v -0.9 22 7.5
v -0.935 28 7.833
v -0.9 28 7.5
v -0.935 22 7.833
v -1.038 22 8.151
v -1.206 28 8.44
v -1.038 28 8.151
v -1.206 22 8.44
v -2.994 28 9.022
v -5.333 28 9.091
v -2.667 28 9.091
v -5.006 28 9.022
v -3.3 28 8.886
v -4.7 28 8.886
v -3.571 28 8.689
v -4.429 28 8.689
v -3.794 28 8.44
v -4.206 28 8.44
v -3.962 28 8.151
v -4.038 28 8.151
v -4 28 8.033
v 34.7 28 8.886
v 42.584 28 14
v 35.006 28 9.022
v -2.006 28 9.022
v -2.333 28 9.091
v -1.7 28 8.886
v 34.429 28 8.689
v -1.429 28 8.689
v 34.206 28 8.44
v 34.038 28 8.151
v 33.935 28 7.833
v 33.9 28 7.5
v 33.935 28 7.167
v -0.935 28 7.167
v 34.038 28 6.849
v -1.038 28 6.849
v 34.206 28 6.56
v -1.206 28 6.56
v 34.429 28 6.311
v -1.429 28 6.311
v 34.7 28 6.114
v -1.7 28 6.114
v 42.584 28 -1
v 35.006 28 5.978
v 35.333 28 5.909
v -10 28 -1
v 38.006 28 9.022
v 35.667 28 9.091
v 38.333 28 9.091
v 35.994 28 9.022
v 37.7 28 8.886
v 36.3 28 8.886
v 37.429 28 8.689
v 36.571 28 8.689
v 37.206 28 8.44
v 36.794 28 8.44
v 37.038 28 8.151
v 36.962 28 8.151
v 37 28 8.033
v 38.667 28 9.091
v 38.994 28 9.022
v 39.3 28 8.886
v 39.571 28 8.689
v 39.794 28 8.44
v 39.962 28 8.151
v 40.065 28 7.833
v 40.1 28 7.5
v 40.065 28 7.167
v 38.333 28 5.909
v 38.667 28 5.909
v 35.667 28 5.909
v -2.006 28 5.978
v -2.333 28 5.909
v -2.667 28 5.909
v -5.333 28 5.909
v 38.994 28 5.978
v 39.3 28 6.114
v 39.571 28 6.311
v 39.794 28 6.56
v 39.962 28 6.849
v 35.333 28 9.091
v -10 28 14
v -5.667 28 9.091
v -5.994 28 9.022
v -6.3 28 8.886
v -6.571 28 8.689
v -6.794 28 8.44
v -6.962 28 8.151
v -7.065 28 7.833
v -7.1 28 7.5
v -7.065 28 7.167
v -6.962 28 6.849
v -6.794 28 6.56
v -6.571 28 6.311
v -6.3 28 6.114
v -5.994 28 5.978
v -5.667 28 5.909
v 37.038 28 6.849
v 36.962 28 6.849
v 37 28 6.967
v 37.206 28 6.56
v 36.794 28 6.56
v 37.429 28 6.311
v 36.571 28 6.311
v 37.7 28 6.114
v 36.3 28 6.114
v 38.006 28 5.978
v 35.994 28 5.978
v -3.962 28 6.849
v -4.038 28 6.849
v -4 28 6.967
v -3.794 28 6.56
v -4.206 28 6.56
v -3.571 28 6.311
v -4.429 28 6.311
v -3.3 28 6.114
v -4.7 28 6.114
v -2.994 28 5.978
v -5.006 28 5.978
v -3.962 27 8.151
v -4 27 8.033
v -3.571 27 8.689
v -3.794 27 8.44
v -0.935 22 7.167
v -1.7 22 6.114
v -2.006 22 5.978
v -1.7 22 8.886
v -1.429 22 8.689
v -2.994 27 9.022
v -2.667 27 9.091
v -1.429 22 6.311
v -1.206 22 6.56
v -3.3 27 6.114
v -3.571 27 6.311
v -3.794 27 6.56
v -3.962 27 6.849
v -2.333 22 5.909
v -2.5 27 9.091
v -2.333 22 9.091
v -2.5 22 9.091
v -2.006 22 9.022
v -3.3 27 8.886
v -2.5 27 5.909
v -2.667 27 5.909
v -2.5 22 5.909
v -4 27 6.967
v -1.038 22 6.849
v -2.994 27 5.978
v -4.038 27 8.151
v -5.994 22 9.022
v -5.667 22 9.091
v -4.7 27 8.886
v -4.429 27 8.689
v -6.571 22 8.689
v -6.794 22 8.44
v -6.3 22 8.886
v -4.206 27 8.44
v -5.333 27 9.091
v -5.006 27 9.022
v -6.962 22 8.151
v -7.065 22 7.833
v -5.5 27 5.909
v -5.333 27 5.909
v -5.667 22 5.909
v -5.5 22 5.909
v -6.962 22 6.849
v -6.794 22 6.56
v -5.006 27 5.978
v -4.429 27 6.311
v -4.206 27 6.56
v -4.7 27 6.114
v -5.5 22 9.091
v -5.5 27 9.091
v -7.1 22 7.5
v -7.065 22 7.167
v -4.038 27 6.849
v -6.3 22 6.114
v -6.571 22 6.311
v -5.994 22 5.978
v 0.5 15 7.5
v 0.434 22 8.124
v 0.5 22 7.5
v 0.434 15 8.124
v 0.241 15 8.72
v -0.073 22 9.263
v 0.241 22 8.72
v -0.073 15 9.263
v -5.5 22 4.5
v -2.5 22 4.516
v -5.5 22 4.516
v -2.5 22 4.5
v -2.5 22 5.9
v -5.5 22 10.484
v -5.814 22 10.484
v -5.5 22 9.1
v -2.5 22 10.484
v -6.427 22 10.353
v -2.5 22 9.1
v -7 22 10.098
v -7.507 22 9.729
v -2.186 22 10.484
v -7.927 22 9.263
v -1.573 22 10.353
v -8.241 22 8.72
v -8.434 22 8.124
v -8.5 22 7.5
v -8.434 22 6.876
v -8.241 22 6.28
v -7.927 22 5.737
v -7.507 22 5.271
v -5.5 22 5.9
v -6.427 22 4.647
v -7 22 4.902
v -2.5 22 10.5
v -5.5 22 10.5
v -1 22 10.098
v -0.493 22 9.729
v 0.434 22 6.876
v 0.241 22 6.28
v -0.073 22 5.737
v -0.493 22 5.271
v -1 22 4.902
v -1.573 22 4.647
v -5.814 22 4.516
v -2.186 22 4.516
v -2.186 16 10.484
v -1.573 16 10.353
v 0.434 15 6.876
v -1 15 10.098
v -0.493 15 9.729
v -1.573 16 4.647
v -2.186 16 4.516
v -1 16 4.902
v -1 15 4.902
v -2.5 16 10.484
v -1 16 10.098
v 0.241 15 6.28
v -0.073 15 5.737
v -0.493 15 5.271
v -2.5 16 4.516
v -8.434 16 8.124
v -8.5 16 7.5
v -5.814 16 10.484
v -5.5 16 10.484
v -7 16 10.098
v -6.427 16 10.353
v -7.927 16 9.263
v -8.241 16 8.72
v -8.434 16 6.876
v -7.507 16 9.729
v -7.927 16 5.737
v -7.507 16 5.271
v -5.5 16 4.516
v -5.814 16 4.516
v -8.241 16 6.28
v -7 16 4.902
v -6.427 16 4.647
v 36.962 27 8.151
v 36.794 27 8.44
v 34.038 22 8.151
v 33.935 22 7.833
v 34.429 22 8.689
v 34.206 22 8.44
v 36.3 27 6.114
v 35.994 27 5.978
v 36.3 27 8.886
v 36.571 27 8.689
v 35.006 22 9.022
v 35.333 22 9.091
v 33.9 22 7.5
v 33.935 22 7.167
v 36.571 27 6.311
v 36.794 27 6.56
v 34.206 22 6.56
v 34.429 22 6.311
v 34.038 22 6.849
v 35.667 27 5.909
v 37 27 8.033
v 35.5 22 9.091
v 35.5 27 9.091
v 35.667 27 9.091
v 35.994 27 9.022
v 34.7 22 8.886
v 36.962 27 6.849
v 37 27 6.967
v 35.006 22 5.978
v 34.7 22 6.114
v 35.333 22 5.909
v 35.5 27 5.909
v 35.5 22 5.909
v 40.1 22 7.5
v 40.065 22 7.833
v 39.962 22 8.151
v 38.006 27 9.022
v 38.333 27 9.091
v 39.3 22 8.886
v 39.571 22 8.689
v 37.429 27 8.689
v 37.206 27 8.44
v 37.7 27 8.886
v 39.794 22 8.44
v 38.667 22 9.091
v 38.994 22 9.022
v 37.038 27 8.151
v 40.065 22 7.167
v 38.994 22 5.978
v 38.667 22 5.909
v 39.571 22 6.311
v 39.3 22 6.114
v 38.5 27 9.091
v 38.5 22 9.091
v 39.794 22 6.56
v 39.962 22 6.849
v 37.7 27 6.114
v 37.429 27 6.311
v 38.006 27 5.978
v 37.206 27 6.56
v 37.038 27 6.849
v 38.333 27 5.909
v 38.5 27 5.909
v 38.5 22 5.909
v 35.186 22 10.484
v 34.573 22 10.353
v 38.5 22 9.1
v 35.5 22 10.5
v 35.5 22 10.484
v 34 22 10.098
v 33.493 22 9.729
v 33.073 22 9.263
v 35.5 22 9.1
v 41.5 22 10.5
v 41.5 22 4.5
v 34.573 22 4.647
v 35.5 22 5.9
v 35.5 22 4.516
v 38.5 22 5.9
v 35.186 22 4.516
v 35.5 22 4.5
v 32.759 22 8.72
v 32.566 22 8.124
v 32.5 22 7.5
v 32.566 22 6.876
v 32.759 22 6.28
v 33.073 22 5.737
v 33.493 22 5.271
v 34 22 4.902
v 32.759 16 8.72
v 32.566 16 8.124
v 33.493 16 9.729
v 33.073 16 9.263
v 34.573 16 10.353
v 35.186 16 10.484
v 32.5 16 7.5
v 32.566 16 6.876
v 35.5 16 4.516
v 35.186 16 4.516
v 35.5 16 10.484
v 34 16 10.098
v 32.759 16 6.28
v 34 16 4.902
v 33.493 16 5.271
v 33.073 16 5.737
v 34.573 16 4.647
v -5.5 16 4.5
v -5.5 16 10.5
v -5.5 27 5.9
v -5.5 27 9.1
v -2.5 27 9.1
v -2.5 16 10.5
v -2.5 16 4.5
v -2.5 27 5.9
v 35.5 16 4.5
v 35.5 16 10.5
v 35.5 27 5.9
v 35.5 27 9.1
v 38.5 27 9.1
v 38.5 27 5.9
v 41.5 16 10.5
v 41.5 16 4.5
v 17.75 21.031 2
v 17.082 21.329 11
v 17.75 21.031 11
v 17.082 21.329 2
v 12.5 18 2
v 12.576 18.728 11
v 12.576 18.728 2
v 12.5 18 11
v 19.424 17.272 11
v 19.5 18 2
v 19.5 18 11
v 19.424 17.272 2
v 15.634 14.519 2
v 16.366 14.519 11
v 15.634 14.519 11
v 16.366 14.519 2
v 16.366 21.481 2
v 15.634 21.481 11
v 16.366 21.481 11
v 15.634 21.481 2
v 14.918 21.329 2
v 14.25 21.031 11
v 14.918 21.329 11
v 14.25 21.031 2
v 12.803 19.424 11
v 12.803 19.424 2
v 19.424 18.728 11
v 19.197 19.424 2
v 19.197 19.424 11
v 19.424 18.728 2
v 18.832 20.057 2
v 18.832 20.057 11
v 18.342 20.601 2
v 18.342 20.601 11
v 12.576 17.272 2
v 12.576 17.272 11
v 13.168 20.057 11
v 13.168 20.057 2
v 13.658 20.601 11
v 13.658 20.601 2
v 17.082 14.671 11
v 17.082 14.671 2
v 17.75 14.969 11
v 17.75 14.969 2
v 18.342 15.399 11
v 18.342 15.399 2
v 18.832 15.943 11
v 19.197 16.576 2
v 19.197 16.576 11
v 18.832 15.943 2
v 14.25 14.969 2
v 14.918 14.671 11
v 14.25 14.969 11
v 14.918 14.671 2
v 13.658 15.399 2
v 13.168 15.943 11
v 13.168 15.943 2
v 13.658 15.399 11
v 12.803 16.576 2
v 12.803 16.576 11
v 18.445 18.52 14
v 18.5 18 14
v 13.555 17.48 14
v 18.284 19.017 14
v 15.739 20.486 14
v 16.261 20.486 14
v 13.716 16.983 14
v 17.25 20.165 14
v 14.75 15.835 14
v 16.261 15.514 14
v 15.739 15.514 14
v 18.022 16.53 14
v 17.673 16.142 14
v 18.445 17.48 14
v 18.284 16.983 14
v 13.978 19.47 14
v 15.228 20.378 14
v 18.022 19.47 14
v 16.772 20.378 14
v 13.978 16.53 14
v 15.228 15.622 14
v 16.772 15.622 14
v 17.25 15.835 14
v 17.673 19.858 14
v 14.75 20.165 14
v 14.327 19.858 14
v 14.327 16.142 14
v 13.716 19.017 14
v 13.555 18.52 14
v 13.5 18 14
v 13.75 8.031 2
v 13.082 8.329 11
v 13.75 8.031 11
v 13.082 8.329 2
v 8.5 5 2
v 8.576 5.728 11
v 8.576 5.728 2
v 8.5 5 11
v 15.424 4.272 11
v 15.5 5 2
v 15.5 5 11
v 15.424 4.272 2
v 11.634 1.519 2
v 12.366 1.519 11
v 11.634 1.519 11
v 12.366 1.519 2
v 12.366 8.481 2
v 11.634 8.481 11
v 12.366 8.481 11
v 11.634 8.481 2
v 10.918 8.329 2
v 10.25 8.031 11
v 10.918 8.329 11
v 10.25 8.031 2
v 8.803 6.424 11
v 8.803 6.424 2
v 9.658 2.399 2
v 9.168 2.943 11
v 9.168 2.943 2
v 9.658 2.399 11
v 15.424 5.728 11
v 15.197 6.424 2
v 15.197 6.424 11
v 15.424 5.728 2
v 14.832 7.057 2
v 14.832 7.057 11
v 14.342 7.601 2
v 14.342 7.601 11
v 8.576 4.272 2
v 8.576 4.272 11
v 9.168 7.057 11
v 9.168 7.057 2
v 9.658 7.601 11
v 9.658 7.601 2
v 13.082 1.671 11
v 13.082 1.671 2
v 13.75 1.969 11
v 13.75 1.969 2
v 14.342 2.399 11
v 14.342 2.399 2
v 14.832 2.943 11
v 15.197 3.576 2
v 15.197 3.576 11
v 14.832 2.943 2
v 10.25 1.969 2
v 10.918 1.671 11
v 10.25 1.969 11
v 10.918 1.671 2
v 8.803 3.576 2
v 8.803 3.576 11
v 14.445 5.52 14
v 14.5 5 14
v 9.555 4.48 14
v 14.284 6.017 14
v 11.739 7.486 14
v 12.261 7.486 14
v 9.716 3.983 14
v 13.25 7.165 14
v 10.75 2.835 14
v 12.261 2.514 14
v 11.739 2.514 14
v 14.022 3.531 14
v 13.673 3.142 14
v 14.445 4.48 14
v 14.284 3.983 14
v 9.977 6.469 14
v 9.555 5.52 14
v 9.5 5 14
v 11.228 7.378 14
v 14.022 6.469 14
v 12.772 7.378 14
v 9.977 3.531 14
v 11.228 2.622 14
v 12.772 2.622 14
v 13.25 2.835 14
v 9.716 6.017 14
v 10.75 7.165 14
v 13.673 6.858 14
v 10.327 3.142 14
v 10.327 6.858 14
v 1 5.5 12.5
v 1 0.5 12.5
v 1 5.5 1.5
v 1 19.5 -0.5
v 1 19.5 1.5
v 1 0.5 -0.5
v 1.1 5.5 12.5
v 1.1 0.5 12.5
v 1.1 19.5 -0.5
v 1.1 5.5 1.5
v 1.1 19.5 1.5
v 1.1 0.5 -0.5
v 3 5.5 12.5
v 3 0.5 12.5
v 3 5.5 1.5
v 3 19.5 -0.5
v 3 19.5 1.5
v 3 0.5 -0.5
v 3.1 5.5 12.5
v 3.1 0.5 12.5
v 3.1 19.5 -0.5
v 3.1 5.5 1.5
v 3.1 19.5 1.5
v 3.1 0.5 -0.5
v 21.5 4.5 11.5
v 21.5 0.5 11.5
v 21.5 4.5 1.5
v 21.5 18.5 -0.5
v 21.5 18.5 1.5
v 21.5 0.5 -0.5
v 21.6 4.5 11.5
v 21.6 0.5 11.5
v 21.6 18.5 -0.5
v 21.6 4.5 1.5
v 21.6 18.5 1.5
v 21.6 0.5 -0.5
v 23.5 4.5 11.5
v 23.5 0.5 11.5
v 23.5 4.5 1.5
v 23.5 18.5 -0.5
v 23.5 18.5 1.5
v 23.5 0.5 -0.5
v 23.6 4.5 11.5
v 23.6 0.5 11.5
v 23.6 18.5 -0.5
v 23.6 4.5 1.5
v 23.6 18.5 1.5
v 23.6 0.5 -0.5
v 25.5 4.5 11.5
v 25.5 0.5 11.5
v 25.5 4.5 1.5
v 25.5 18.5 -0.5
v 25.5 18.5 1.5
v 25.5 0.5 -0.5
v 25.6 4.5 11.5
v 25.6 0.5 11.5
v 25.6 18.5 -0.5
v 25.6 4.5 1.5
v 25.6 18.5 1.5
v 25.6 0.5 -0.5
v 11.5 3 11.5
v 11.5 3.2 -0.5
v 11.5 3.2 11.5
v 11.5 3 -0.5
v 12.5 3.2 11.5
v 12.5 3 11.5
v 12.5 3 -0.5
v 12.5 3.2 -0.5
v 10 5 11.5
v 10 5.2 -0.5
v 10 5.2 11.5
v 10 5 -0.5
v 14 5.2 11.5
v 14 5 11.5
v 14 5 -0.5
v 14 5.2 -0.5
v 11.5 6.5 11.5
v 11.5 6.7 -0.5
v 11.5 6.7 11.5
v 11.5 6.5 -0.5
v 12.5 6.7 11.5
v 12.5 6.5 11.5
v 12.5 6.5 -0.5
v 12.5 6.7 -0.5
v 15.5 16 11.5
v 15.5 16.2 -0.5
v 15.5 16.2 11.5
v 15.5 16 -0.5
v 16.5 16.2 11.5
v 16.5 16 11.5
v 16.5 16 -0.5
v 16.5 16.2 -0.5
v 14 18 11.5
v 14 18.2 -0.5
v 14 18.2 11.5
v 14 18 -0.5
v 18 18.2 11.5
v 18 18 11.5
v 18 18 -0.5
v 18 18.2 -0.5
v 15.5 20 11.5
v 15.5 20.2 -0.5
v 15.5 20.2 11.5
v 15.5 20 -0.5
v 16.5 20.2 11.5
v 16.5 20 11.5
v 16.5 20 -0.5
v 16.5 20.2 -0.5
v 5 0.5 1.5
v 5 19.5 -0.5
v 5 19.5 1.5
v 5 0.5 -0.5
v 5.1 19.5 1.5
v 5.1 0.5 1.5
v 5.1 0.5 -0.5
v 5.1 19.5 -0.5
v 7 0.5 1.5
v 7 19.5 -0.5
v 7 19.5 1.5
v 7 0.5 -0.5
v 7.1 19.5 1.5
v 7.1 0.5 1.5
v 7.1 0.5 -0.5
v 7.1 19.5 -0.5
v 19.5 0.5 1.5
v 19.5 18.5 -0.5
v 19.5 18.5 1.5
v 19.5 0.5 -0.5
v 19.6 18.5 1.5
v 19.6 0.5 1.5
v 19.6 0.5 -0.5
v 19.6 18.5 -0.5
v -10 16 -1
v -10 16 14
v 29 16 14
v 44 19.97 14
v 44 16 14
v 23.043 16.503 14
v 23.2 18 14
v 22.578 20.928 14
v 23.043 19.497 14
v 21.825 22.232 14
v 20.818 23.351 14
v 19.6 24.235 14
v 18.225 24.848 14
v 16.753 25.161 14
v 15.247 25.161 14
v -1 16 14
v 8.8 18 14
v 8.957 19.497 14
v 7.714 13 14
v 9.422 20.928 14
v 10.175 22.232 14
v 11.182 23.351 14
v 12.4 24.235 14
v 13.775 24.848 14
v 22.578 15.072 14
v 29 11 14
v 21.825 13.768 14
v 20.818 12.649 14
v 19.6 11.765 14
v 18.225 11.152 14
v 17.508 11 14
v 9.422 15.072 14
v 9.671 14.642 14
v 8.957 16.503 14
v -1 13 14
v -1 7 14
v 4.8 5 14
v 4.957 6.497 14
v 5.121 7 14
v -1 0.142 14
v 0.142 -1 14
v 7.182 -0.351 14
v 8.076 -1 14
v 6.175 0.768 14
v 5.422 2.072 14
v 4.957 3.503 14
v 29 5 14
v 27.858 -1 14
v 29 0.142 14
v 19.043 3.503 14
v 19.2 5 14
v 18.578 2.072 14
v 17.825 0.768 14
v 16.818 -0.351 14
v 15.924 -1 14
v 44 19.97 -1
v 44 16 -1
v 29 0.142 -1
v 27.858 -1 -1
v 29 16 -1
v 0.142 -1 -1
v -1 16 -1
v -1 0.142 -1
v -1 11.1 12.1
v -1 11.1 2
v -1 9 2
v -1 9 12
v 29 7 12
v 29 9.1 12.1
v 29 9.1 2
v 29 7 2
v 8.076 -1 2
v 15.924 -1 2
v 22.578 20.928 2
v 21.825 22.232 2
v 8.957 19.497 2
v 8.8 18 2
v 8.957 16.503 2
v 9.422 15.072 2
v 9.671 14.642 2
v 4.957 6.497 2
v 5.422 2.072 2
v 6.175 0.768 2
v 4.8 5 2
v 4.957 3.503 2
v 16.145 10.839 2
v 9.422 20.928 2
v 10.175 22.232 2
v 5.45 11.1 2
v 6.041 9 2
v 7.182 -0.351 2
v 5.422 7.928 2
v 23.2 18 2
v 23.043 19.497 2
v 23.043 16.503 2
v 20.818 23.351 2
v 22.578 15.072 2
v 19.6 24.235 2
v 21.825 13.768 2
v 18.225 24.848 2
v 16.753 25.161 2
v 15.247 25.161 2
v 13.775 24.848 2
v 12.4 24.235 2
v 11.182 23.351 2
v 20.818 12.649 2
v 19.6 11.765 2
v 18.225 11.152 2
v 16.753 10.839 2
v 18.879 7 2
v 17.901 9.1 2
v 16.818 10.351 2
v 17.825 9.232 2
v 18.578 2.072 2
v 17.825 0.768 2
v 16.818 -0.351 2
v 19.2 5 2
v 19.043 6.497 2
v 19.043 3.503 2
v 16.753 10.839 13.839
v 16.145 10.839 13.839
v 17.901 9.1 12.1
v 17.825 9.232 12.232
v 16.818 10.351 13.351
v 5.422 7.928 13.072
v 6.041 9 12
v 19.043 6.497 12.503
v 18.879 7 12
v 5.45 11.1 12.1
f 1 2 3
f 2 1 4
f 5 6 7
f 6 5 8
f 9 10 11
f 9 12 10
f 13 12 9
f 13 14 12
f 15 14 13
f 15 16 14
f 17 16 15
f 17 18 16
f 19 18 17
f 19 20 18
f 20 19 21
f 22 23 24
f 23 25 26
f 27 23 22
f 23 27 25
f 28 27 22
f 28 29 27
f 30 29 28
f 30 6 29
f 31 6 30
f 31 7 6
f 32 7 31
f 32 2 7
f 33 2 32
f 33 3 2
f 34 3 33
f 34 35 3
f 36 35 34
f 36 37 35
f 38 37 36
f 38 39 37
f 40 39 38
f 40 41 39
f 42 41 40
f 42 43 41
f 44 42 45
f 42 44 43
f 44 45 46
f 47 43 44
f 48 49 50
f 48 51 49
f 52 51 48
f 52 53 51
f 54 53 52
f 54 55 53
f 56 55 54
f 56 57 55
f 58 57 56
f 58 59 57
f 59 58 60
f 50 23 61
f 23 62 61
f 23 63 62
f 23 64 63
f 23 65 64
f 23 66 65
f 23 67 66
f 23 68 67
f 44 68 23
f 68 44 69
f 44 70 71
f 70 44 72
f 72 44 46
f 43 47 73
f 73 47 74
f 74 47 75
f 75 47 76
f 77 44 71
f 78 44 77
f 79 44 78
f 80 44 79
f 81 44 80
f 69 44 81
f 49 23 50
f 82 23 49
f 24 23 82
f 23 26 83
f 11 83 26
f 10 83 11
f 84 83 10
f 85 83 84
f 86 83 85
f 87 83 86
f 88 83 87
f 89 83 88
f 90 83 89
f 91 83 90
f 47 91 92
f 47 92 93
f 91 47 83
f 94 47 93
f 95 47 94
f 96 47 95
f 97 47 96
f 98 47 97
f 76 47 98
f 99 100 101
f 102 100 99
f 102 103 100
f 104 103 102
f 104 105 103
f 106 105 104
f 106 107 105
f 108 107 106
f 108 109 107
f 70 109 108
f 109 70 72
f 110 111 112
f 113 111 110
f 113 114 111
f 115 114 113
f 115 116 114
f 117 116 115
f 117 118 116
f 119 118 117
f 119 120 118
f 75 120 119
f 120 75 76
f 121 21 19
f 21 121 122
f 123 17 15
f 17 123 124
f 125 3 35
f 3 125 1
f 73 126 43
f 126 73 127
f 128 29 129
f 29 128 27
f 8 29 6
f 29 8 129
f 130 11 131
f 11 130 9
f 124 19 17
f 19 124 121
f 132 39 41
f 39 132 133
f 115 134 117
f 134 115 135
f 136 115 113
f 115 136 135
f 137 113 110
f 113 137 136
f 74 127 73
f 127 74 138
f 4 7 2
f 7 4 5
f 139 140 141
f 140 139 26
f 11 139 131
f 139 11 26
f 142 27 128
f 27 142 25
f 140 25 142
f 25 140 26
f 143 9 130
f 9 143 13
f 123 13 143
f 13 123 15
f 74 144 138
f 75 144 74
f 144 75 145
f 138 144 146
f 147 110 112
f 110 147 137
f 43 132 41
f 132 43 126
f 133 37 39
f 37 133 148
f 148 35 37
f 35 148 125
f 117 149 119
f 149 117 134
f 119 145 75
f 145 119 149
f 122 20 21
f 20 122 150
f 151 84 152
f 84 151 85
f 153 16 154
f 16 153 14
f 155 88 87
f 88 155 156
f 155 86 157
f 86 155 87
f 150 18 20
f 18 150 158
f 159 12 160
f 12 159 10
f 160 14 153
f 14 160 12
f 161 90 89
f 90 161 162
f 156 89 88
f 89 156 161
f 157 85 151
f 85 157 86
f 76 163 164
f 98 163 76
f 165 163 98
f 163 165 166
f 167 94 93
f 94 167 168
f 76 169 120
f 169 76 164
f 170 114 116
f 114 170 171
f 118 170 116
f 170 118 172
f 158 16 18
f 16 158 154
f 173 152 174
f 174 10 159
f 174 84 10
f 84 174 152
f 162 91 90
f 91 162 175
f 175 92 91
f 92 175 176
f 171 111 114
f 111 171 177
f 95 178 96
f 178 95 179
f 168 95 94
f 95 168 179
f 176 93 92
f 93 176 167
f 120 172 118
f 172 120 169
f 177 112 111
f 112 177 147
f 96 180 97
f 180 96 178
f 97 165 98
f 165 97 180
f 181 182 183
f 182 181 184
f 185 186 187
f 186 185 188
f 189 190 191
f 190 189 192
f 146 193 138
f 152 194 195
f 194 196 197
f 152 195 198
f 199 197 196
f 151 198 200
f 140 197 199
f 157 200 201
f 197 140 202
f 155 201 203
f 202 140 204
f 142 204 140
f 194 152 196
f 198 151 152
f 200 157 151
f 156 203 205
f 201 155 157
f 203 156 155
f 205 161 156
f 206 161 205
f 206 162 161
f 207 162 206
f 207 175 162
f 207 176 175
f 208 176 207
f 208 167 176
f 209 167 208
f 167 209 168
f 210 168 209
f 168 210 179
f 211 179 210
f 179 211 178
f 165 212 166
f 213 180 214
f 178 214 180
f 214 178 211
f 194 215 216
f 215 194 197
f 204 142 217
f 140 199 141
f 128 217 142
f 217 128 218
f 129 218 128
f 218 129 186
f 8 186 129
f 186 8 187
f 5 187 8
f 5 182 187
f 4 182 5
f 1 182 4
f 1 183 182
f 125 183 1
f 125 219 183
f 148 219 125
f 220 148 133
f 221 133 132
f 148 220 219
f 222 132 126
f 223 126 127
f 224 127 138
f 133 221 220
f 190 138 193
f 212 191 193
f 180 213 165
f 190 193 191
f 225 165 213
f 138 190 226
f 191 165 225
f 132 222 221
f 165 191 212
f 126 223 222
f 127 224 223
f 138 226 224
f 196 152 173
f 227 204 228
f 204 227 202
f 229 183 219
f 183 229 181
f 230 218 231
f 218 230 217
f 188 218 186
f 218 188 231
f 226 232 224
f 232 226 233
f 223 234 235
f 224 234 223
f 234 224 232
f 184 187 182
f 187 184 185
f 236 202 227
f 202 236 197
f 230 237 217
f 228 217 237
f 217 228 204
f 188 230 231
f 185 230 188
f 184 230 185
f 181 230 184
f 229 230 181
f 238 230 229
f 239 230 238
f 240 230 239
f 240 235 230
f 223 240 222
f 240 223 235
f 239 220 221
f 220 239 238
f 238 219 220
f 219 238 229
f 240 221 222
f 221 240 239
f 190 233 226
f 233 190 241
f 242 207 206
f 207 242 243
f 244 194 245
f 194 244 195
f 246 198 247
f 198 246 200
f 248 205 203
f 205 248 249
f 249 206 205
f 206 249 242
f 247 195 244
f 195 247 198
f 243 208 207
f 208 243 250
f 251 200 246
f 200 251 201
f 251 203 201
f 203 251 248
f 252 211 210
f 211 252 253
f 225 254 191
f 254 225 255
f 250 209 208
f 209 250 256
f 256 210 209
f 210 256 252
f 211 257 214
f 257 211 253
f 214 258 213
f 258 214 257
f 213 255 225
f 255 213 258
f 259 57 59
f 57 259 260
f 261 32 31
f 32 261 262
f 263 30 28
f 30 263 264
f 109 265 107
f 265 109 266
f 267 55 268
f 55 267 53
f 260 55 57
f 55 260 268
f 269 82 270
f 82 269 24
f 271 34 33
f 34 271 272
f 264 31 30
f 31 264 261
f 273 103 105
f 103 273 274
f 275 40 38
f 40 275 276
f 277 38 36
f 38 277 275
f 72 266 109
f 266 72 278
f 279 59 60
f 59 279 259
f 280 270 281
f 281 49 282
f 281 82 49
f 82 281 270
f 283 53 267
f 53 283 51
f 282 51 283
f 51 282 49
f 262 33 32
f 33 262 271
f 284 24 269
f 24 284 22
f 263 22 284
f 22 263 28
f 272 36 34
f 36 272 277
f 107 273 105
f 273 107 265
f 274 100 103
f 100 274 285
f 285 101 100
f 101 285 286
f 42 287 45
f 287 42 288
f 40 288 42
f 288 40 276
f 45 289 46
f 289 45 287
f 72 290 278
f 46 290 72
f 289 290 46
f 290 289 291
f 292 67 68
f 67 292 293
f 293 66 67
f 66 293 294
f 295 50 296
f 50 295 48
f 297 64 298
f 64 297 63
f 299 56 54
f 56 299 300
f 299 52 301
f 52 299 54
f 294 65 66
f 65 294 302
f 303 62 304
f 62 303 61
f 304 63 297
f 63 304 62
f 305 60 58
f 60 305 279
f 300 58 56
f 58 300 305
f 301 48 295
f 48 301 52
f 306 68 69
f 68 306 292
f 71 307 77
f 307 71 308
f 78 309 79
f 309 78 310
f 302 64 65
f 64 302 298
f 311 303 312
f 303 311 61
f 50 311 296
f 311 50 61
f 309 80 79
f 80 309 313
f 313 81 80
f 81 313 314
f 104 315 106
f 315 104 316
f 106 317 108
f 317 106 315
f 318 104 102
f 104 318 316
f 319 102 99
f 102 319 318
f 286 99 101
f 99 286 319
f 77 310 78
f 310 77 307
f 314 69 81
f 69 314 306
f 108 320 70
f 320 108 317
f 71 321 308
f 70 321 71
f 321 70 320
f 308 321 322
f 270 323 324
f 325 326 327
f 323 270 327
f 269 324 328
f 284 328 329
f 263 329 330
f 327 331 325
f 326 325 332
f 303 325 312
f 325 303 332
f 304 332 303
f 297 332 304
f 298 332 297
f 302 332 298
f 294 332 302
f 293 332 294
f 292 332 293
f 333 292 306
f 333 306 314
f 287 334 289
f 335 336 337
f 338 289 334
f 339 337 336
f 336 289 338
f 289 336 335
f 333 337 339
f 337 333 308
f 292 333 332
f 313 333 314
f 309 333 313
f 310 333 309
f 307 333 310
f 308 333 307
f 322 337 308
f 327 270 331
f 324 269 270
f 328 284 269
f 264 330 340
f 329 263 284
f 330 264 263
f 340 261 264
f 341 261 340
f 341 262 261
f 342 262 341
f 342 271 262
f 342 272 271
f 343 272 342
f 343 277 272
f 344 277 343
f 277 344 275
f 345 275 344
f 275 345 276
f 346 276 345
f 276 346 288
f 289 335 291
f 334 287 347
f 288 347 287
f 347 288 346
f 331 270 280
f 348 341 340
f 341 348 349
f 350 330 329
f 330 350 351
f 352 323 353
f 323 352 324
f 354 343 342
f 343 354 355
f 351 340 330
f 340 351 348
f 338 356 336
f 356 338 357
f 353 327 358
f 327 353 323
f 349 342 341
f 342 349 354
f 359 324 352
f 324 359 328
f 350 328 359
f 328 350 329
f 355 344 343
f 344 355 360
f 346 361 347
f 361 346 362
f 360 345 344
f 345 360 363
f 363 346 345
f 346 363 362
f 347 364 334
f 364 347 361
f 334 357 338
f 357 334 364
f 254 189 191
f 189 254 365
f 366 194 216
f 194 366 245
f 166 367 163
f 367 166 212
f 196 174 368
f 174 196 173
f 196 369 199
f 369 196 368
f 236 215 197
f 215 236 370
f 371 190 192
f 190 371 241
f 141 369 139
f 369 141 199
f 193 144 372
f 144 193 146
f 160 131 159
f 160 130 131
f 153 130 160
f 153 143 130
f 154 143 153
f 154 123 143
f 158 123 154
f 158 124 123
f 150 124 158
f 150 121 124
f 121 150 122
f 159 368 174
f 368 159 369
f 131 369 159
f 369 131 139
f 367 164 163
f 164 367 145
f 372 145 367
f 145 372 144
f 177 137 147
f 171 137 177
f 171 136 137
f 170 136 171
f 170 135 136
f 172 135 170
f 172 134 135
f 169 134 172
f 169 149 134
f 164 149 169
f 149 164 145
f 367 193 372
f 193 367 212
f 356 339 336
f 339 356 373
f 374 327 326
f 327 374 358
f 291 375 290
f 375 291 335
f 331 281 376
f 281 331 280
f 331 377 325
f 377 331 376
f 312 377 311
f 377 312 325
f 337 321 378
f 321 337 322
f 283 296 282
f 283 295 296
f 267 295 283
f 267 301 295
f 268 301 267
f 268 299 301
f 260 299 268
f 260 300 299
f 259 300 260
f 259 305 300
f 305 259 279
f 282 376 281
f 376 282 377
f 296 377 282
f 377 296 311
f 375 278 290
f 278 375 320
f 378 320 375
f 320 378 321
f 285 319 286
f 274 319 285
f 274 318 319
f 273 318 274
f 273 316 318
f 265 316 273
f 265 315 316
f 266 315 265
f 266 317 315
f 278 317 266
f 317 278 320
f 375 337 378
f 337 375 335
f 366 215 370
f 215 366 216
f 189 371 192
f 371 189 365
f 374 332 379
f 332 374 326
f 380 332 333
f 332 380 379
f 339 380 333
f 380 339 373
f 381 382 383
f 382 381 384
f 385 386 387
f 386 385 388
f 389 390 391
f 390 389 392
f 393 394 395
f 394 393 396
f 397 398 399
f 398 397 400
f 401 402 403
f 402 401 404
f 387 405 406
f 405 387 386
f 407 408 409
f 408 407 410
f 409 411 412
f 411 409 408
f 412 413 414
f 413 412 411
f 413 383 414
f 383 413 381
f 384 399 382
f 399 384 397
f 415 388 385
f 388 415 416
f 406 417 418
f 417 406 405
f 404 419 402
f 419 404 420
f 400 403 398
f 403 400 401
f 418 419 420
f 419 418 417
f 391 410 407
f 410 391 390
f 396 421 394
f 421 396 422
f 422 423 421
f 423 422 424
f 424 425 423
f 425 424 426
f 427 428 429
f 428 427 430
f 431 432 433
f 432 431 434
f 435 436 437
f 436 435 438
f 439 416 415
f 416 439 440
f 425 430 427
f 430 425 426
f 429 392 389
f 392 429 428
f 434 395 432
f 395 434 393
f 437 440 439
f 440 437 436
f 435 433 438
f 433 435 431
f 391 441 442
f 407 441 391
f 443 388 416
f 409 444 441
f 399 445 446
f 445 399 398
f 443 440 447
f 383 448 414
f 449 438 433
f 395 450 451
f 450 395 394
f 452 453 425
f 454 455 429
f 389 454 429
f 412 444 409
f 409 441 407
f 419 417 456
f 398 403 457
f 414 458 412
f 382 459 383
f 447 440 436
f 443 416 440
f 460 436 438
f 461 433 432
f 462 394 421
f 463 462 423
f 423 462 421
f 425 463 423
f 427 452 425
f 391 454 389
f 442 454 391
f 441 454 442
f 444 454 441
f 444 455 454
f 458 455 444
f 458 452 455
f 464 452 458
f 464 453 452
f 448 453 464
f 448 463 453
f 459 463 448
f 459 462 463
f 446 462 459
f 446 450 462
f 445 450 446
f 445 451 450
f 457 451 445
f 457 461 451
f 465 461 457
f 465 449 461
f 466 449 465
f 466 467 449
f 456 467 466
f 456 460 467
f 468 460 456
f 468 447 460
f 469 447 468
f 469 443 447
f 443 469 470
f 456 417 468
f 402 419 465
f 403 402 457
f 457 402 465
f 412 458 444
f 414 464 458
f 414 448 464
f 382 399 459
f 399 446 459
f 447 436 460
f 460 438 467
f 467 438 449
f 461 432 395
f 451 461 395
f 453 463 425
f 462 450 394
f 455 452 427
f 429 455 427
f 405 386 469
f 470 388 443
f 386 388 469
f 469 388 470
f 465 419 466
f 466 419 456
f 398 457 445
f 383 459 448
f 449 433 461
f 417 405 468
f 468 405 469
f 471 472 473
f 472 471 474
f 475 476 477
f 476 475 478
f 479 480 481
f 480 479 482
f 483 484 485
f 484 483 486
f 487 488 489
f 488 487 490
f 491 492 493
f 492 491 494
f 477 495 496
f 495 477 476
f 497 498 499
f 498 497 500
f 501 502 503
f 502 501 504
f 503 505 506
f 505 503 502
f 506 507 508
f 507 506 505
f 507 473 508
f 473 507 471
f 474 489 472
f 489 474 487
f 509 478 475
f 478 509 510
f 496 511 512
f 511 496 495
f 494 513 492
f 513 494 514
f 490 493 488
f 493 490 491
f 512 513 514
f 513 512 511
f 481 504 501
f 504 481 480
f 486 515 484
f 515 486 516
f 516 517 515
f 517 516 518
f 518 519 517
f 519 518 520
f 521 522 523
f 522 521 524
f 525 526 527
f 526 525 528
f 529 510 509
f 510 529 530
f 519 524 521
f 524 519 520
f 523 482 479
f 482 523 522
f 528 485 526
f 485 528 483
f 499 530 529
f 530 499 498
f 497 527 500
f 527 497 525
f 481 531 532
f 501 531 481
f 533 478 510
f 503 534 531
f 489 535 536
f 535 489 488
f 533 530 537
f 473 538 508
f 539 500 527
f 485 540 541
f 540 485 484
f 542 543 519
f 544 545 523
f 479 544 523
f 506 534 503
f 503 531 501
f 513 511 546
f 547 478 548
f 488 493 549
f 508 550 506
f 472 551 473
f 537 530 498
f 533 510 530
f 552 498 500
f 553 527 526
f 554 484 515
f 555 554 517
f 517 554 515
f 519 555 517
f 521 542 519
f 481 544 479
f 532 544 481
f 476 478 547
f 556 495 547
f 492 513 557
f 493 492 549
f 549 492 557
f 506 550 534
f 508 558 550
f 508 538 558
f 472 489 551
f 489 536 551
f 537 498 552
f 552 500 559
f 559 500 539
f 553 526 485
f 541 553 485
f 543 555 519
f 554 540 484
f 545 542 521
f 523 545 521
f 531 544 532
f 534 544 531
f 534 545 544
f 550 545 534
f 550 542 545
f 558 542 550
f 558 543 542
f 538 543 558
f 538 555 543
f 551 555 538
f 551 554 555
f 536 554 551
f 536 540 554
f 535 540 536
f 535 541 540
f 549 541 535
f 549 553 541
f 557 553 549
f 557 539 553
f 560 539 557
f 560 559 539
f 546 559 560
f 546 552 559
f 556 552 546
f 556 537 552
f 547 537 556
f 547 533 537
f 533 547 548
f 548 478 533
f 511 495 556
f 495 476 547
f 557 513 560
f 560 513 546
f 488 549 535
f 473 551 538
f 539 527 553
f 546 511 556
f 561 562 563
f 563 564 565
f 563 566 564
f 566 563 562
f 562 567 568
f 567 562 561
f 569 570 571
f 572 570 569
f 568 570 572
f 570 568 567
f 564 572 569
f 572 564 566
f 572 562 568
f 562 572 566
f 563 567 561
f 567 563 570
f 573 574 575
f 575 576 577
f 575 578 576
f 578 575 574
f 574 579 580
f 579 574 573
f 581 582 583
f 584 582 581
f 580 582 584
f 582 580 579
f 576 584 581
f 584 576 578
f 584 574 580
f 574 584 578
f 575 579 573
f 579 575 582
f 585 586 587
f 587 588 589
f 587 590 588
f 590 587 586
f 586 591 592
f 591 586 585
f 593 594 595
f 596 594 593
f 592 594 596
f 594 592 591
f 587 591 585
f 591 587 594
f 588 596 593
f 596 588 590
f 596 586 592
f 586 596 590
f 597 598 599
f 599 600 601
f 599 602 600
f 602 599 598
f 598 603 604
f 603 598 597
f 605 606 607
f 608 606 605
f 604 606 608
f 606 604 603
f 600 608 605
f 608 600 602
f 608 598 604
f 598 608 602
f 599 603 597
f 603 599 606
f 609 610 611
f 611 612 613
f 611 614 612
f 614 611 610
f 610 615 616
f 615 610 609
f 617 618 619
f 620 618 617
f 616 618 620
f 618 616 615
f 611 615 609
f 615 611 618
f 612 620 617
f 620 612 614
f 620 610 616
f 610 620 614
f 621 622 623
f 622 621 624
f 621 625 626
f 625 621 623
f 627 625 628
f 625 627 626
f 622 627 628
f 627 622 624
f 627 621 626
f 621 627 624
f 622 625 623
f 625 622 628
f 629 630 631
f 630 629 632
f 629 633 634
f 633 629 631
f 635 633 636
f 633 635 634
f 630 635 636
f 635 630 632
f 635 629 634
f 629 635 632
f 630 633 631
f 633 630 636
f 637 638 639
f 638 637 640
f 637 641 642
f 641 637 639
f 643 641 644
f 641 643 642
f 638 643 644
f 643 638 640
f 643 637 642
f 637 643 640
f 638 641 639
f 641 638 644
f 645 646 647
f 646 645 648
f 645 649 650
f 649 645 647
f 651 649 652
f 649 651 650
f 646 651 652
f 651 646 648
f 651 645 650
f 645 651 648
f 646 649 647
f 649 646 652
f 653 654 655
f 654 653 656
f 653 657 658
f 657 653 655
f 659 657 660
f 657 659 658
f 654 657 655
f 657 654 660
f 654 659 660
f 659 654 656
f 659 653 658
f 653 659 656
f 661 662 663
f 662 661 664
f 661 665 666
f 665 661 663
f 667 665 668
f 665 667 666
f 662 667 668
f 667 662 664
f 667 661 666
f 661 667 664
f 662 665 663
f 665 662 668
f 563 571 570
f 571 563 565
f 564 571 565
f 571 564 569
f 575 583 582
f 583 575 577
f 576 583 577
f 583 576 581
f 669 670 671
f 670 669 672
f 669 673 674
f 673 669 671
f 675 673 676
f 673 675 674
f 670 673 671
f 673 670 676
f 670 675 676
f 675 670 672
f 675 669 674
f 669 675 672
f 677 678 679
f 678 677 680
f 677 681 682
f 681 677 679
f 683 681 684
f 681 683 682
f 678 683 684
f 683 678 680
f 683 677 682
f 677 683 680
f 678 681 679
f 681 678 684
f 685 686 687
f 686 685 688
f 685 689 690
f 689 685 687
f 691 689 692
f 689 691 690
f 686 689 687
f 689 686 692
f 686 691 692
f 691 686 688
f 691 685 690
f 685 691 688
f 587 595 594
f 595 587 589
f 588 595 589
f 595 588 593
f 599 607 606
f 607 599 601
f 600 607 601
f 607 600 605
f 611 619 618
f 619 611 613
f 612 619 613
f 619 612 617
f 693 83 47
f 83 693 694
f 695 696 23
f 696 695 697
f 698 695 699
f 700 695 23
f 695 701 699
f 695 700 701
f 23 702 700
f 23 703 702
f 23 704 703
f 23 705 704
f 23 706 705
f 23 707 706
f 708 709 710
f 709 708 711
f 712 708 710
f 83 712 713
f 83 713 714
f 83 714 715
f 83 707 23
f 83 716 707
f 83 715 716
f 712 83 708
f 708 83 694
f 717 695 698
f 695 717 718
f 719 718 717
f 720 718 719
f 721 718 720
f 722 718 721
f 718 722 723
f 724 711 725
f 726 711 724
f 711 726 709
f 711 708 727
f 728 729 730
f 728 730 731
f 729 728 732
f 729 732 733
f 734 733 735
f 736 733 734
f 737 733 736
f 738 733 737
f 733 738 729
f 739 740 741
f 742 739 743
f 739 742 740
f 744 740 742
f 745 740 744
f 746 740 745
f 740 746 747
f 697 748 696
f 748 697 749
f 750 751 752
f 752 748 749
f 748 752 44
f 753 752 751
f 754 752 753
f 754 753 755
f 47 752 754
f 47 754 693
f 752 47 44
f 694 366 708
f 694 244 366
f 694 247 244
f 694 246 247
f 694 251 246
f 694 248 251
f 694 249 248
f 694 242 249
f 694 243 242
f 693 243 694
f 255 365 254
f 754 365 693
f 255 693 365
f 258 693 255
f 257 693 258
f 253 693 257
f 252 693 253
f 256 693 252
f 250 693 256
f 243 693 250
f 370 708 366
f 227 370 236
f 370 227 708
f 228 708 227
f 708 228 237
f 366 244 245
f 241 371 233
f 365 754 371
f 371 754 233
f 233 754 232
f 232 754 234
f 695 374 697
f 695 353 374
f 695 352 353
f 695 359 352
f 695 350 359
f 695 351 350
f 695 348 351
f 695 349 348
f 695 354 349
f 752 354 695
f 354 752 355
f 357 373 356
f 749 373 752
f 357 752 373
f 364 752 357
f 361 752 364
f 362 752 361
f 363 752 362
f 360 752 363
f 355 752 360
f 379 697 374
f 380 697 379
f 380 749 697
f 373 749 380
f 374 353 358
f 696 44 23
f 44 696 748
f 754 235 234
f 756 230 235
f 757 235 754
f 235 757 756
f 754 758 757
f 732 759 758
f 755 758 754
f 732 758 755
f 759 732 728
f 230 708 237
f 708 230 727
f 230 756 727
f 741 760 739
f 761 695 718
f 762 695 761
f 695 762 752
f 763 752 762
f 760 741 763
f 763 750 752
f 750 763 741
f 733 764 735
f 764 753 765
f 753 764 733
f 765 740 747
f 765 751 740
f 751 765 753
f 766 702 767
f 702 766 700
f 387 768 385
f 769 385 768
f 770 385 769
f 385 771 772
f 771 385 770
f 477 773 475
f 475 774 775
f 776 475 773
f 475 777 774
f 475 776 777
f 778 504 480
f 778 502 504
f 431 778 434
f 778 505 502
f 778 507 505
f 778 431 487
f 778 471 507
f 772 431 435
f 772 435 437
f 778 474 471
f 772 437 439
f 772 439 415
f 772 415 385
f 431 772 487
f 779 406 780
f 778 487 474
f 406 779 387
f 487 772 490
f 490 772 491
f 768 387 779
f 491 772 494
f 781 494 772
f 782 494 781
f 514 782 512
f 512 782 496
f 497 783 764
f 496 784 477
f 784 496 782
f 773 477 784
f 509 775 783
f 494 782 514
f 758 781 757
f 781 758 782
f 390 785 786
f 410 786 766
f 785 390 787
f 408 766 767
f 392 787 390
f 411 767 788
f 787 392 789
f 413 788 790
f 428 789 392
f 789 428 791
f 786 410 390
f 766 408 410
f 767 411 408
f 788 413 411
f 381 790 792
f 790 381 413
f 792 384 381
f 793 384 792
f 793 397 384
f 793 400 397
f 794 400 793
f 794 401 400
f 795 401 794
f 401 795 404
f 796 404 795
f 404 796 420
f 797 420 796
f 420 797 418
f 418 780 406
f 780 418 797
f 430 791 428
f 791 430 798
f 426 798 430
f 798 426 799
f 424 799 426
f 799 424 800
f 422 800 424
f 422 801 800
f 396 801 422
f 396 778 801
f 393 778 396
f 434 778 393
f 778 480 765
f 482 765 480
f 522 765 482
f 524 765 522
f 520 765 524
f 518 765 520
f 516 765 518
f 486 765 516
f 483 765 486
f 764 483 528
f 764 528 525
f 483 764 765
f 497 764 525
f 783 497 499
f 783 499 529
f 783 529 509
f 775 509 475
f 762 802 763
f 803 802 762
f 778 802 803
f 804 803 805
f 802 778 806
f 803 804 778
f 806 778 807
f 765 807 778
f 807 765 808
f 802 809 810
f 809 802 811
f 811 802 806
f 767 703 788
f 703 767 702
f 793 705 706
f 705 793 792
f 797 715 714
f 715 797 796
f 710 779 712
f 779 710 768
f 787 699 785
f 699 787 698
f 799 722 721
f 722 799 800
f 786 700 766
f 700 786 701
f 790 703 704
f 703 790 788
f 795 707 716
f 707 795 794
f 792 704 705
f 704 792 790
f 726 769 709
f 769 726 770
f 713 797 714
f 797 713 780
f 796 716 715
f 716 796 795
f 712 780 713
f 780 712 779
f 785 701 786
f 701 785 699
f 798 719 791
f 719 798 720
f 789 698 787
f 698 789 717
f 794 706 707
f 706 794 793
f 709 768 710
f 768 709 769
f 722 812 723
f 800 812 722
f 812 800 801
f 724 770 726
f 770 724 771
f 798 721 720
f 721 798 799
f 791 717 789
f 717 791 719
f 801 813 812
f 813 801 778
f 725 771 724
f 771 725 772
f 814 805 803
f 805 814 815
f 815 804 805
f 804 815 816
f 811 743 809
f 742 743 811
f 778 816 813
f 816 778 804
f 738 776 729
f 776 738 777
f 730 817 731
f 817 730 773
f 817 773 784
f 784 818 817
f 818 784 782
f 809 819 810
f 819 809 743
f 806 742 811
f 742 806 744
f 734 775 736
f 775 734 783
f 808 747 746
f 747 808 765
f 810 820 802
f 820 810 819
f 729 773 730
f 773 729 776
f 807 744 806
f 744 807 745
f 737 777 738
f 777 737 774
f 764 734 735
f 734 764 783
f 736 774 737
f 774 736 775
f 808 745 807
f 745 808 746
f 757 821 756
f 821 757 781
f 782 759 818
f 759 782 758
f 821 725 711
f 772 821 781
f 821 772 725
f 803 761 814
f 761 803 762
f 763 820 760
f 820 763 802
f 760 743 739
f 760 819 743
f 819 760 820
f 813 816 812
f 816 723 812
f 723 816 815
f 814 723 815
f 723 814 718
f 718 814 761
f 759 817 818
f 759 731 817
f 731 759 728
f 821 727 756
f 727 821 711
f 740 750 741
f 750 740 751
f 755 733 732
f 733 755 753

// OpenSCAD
// PRUSA iteration3
// Y belt holder
// GNU GPL v3
// Josef Průša <iam@josefprusa.cz> and contributors
// http://www.reprap.org/wiki/Prusa_Mendel
// http://prusamendel.org

module main_body()
{
translate([-1, -1, -1 ]) cube([ 30, 27, 15 ]);
difference() {
  translate([-10, 16, -1 ]) cube([ 54, 12, 15 ]);
  translate([44.7, 16, -1 ]) rotate([0,0,10]) cube([4, 20, 20 ]);
  }
}

module belt_holders()
{
   translate([ 16, 18, 0 ]) cylinder( h=11, r=3.5, $fn=30 );  // upper belt holder
   translate([ 16, 18, 11 ]) cylinder( h=3, r1=3.5, r2=2.5, $fn=30 );  // upper belt holder cone
    
   translate([ 12, 5, 0 ]) cylinder( h=11, r=3.5, $fn=30 );  // lower belt holder
   translate([ 12, 5, 11 ]) cylinder( h=3 , r1=3.5, r2=2.5, $fn=30 );  // lower belt holder cone
}

module screws()
{
    translate( [ -2.5 , 28 , 7.5 ] ) rotate([90,0,0]) cylinder( h = 10, r = 1.6, $fn=30);  //screw hole
    translate( [ -5.5 , 28 , 7.5 ] ) rotate([90,0,0]) cylinder( h = 10, r = 1.6, $fn=30);  //screw hole
    translate( [ -2.5, 22 , 7.5 ] ) rotate([90,0,0]) cylinder( h = 7, r = 3, $fn=30);  //screw hole - head
    translate( [ -5.5 , 22 , 7.5 ] ) rotate([90,0,0]) cylinder( h = 10, r = 3, $fn=30);  //screw hole - head
    
    translate( [ 35.5 , 28 , 7.5 ] ) rotate([90,0,0]) cylinder( h = 10, r = 1.6, $fn=30);  //screw hole
    translate( [ 38.5 , 28 , 7.5 ] ) rotate([90,0,0]) cylinder( h = 10, r = 1.6, $fn=30);  //screw hole
    translate( [ 35.5 , 22 , 7.5 ] ) rotate([90,0,0]) cylinder( h = 10, r = 3, $fn=30);  //screw hole - head
    translate( [ 38.5 , 22 , 7.5 ] ) rotate([90,0,0]) cylinder( h = 10, r = 3, $fn=30);  //screw hole - head
    
    translate([-5.5, 21, 5.9 ]) cube([ 3, 6, 3.2 ]);
    translate([35.5, 21, 5.9 ]) cube([ 3, 6, 3.2 ]);
    
    translate([-5.5, 15, 4.5 ]) cube([ 3, 7, 6 ]);
    translate([35.5, 15, 4.5 ]) cube([ 6, 7, 6 ]);
}

//belt_holders();
module main()

{
difference()
{
main_body();
    
translate([ 16, 18, 2 ]) cylinder( h = 16, r = 7.2, $fn=30 );  // upper belt space cutaway
translate([ 12, 5, 2 ]) cylinder( h = 16, r = 7.2, $fn=30 );  // lower belt space cutaway
translate([-20, 9, 2]) cube([ 28, 2.1, 16 ]); 
rotate([0,0,40]) translate([11, 1, 2 ]) cube([ 10, 4, 16 ]);     
    
translate([10, 7, 2 ]) cube([ 32, 2.1, 16 ]); 
    
translate([16, 8, 11 ]) rotate([45,0,0]) cube([ 15, 5, 5 ]);     
translate([-2, 10, 11 ]) rotate([45,0,0]) cube([ 10, 5, 5 ]);     
screws();
    
 
 
 
    // corner cutoff
    translate([30,-13,-2]) rotate([0,0,45]) cube([10,10,20]);    
    translate([-2,-13,-2]) rotate([0,0,45]) cube([10,10,20]);    
    
    
}
}

module selective_infill()
{
    // print part reinforcement
    translate([1,    0.5, -0.5]) cube([0.1,5,13]);     
    translate([3,    0.5, -0.5]) cube([0.1,5,13]);     
    translate([21.5, 0.5, -0.5]) cube([0.1,4,12]);
    translate([23.5, 0.5, -0.5]) cube([0.1,4,12]);
    translate([25.5, 0.5, -0.5]) cube([0.1,4,12]);
    translate([11.5, 3,   -0.5]) cube([1,0.2,12]);
    translate([10,   5,   -0.5]) cube([4,0.2,12]);
    translate([11.5, 6.5, -0.5]) cube([1,0.2,12]);
    translate([15.5, 16,  -0.5]) cube([1,0.2,12]);
    translate([14,   18,  -0.5]) cube([4,0.2,12]);
    translate([15.5, 20,  -0.5]) cube([1,0.2,12]);   
   
    translate([1, 5.5, -0.5]) cube([0.1,14,2]);    
    translate([3, 5.5, -0.5]) cube([0.1,14,2]);   
    translate([5, 0.5, -0.5]) cube([0.1,19,2]);   
    translate([7, 0.5, -0.5]) cube([0.1,19,2]);   
    
    translate([19.5, 0.5, -0.5]) cube([0.1,18,2]);
    translate([21.5, 4.5, -0.5]) cube([0.1,14,2]);
    translate([23.5, 4.5, -0.5]) cube([0.1,14,2]);
    translate([25.5, 4.5, -0.5]) cube([0.1,14,2]);
    }
    
    
module final_part()
{
difference()
    {
    union()
    {
    main();
    belt_holders();  
    }
    selective_infill();
}
}    
   
final_part();

   
